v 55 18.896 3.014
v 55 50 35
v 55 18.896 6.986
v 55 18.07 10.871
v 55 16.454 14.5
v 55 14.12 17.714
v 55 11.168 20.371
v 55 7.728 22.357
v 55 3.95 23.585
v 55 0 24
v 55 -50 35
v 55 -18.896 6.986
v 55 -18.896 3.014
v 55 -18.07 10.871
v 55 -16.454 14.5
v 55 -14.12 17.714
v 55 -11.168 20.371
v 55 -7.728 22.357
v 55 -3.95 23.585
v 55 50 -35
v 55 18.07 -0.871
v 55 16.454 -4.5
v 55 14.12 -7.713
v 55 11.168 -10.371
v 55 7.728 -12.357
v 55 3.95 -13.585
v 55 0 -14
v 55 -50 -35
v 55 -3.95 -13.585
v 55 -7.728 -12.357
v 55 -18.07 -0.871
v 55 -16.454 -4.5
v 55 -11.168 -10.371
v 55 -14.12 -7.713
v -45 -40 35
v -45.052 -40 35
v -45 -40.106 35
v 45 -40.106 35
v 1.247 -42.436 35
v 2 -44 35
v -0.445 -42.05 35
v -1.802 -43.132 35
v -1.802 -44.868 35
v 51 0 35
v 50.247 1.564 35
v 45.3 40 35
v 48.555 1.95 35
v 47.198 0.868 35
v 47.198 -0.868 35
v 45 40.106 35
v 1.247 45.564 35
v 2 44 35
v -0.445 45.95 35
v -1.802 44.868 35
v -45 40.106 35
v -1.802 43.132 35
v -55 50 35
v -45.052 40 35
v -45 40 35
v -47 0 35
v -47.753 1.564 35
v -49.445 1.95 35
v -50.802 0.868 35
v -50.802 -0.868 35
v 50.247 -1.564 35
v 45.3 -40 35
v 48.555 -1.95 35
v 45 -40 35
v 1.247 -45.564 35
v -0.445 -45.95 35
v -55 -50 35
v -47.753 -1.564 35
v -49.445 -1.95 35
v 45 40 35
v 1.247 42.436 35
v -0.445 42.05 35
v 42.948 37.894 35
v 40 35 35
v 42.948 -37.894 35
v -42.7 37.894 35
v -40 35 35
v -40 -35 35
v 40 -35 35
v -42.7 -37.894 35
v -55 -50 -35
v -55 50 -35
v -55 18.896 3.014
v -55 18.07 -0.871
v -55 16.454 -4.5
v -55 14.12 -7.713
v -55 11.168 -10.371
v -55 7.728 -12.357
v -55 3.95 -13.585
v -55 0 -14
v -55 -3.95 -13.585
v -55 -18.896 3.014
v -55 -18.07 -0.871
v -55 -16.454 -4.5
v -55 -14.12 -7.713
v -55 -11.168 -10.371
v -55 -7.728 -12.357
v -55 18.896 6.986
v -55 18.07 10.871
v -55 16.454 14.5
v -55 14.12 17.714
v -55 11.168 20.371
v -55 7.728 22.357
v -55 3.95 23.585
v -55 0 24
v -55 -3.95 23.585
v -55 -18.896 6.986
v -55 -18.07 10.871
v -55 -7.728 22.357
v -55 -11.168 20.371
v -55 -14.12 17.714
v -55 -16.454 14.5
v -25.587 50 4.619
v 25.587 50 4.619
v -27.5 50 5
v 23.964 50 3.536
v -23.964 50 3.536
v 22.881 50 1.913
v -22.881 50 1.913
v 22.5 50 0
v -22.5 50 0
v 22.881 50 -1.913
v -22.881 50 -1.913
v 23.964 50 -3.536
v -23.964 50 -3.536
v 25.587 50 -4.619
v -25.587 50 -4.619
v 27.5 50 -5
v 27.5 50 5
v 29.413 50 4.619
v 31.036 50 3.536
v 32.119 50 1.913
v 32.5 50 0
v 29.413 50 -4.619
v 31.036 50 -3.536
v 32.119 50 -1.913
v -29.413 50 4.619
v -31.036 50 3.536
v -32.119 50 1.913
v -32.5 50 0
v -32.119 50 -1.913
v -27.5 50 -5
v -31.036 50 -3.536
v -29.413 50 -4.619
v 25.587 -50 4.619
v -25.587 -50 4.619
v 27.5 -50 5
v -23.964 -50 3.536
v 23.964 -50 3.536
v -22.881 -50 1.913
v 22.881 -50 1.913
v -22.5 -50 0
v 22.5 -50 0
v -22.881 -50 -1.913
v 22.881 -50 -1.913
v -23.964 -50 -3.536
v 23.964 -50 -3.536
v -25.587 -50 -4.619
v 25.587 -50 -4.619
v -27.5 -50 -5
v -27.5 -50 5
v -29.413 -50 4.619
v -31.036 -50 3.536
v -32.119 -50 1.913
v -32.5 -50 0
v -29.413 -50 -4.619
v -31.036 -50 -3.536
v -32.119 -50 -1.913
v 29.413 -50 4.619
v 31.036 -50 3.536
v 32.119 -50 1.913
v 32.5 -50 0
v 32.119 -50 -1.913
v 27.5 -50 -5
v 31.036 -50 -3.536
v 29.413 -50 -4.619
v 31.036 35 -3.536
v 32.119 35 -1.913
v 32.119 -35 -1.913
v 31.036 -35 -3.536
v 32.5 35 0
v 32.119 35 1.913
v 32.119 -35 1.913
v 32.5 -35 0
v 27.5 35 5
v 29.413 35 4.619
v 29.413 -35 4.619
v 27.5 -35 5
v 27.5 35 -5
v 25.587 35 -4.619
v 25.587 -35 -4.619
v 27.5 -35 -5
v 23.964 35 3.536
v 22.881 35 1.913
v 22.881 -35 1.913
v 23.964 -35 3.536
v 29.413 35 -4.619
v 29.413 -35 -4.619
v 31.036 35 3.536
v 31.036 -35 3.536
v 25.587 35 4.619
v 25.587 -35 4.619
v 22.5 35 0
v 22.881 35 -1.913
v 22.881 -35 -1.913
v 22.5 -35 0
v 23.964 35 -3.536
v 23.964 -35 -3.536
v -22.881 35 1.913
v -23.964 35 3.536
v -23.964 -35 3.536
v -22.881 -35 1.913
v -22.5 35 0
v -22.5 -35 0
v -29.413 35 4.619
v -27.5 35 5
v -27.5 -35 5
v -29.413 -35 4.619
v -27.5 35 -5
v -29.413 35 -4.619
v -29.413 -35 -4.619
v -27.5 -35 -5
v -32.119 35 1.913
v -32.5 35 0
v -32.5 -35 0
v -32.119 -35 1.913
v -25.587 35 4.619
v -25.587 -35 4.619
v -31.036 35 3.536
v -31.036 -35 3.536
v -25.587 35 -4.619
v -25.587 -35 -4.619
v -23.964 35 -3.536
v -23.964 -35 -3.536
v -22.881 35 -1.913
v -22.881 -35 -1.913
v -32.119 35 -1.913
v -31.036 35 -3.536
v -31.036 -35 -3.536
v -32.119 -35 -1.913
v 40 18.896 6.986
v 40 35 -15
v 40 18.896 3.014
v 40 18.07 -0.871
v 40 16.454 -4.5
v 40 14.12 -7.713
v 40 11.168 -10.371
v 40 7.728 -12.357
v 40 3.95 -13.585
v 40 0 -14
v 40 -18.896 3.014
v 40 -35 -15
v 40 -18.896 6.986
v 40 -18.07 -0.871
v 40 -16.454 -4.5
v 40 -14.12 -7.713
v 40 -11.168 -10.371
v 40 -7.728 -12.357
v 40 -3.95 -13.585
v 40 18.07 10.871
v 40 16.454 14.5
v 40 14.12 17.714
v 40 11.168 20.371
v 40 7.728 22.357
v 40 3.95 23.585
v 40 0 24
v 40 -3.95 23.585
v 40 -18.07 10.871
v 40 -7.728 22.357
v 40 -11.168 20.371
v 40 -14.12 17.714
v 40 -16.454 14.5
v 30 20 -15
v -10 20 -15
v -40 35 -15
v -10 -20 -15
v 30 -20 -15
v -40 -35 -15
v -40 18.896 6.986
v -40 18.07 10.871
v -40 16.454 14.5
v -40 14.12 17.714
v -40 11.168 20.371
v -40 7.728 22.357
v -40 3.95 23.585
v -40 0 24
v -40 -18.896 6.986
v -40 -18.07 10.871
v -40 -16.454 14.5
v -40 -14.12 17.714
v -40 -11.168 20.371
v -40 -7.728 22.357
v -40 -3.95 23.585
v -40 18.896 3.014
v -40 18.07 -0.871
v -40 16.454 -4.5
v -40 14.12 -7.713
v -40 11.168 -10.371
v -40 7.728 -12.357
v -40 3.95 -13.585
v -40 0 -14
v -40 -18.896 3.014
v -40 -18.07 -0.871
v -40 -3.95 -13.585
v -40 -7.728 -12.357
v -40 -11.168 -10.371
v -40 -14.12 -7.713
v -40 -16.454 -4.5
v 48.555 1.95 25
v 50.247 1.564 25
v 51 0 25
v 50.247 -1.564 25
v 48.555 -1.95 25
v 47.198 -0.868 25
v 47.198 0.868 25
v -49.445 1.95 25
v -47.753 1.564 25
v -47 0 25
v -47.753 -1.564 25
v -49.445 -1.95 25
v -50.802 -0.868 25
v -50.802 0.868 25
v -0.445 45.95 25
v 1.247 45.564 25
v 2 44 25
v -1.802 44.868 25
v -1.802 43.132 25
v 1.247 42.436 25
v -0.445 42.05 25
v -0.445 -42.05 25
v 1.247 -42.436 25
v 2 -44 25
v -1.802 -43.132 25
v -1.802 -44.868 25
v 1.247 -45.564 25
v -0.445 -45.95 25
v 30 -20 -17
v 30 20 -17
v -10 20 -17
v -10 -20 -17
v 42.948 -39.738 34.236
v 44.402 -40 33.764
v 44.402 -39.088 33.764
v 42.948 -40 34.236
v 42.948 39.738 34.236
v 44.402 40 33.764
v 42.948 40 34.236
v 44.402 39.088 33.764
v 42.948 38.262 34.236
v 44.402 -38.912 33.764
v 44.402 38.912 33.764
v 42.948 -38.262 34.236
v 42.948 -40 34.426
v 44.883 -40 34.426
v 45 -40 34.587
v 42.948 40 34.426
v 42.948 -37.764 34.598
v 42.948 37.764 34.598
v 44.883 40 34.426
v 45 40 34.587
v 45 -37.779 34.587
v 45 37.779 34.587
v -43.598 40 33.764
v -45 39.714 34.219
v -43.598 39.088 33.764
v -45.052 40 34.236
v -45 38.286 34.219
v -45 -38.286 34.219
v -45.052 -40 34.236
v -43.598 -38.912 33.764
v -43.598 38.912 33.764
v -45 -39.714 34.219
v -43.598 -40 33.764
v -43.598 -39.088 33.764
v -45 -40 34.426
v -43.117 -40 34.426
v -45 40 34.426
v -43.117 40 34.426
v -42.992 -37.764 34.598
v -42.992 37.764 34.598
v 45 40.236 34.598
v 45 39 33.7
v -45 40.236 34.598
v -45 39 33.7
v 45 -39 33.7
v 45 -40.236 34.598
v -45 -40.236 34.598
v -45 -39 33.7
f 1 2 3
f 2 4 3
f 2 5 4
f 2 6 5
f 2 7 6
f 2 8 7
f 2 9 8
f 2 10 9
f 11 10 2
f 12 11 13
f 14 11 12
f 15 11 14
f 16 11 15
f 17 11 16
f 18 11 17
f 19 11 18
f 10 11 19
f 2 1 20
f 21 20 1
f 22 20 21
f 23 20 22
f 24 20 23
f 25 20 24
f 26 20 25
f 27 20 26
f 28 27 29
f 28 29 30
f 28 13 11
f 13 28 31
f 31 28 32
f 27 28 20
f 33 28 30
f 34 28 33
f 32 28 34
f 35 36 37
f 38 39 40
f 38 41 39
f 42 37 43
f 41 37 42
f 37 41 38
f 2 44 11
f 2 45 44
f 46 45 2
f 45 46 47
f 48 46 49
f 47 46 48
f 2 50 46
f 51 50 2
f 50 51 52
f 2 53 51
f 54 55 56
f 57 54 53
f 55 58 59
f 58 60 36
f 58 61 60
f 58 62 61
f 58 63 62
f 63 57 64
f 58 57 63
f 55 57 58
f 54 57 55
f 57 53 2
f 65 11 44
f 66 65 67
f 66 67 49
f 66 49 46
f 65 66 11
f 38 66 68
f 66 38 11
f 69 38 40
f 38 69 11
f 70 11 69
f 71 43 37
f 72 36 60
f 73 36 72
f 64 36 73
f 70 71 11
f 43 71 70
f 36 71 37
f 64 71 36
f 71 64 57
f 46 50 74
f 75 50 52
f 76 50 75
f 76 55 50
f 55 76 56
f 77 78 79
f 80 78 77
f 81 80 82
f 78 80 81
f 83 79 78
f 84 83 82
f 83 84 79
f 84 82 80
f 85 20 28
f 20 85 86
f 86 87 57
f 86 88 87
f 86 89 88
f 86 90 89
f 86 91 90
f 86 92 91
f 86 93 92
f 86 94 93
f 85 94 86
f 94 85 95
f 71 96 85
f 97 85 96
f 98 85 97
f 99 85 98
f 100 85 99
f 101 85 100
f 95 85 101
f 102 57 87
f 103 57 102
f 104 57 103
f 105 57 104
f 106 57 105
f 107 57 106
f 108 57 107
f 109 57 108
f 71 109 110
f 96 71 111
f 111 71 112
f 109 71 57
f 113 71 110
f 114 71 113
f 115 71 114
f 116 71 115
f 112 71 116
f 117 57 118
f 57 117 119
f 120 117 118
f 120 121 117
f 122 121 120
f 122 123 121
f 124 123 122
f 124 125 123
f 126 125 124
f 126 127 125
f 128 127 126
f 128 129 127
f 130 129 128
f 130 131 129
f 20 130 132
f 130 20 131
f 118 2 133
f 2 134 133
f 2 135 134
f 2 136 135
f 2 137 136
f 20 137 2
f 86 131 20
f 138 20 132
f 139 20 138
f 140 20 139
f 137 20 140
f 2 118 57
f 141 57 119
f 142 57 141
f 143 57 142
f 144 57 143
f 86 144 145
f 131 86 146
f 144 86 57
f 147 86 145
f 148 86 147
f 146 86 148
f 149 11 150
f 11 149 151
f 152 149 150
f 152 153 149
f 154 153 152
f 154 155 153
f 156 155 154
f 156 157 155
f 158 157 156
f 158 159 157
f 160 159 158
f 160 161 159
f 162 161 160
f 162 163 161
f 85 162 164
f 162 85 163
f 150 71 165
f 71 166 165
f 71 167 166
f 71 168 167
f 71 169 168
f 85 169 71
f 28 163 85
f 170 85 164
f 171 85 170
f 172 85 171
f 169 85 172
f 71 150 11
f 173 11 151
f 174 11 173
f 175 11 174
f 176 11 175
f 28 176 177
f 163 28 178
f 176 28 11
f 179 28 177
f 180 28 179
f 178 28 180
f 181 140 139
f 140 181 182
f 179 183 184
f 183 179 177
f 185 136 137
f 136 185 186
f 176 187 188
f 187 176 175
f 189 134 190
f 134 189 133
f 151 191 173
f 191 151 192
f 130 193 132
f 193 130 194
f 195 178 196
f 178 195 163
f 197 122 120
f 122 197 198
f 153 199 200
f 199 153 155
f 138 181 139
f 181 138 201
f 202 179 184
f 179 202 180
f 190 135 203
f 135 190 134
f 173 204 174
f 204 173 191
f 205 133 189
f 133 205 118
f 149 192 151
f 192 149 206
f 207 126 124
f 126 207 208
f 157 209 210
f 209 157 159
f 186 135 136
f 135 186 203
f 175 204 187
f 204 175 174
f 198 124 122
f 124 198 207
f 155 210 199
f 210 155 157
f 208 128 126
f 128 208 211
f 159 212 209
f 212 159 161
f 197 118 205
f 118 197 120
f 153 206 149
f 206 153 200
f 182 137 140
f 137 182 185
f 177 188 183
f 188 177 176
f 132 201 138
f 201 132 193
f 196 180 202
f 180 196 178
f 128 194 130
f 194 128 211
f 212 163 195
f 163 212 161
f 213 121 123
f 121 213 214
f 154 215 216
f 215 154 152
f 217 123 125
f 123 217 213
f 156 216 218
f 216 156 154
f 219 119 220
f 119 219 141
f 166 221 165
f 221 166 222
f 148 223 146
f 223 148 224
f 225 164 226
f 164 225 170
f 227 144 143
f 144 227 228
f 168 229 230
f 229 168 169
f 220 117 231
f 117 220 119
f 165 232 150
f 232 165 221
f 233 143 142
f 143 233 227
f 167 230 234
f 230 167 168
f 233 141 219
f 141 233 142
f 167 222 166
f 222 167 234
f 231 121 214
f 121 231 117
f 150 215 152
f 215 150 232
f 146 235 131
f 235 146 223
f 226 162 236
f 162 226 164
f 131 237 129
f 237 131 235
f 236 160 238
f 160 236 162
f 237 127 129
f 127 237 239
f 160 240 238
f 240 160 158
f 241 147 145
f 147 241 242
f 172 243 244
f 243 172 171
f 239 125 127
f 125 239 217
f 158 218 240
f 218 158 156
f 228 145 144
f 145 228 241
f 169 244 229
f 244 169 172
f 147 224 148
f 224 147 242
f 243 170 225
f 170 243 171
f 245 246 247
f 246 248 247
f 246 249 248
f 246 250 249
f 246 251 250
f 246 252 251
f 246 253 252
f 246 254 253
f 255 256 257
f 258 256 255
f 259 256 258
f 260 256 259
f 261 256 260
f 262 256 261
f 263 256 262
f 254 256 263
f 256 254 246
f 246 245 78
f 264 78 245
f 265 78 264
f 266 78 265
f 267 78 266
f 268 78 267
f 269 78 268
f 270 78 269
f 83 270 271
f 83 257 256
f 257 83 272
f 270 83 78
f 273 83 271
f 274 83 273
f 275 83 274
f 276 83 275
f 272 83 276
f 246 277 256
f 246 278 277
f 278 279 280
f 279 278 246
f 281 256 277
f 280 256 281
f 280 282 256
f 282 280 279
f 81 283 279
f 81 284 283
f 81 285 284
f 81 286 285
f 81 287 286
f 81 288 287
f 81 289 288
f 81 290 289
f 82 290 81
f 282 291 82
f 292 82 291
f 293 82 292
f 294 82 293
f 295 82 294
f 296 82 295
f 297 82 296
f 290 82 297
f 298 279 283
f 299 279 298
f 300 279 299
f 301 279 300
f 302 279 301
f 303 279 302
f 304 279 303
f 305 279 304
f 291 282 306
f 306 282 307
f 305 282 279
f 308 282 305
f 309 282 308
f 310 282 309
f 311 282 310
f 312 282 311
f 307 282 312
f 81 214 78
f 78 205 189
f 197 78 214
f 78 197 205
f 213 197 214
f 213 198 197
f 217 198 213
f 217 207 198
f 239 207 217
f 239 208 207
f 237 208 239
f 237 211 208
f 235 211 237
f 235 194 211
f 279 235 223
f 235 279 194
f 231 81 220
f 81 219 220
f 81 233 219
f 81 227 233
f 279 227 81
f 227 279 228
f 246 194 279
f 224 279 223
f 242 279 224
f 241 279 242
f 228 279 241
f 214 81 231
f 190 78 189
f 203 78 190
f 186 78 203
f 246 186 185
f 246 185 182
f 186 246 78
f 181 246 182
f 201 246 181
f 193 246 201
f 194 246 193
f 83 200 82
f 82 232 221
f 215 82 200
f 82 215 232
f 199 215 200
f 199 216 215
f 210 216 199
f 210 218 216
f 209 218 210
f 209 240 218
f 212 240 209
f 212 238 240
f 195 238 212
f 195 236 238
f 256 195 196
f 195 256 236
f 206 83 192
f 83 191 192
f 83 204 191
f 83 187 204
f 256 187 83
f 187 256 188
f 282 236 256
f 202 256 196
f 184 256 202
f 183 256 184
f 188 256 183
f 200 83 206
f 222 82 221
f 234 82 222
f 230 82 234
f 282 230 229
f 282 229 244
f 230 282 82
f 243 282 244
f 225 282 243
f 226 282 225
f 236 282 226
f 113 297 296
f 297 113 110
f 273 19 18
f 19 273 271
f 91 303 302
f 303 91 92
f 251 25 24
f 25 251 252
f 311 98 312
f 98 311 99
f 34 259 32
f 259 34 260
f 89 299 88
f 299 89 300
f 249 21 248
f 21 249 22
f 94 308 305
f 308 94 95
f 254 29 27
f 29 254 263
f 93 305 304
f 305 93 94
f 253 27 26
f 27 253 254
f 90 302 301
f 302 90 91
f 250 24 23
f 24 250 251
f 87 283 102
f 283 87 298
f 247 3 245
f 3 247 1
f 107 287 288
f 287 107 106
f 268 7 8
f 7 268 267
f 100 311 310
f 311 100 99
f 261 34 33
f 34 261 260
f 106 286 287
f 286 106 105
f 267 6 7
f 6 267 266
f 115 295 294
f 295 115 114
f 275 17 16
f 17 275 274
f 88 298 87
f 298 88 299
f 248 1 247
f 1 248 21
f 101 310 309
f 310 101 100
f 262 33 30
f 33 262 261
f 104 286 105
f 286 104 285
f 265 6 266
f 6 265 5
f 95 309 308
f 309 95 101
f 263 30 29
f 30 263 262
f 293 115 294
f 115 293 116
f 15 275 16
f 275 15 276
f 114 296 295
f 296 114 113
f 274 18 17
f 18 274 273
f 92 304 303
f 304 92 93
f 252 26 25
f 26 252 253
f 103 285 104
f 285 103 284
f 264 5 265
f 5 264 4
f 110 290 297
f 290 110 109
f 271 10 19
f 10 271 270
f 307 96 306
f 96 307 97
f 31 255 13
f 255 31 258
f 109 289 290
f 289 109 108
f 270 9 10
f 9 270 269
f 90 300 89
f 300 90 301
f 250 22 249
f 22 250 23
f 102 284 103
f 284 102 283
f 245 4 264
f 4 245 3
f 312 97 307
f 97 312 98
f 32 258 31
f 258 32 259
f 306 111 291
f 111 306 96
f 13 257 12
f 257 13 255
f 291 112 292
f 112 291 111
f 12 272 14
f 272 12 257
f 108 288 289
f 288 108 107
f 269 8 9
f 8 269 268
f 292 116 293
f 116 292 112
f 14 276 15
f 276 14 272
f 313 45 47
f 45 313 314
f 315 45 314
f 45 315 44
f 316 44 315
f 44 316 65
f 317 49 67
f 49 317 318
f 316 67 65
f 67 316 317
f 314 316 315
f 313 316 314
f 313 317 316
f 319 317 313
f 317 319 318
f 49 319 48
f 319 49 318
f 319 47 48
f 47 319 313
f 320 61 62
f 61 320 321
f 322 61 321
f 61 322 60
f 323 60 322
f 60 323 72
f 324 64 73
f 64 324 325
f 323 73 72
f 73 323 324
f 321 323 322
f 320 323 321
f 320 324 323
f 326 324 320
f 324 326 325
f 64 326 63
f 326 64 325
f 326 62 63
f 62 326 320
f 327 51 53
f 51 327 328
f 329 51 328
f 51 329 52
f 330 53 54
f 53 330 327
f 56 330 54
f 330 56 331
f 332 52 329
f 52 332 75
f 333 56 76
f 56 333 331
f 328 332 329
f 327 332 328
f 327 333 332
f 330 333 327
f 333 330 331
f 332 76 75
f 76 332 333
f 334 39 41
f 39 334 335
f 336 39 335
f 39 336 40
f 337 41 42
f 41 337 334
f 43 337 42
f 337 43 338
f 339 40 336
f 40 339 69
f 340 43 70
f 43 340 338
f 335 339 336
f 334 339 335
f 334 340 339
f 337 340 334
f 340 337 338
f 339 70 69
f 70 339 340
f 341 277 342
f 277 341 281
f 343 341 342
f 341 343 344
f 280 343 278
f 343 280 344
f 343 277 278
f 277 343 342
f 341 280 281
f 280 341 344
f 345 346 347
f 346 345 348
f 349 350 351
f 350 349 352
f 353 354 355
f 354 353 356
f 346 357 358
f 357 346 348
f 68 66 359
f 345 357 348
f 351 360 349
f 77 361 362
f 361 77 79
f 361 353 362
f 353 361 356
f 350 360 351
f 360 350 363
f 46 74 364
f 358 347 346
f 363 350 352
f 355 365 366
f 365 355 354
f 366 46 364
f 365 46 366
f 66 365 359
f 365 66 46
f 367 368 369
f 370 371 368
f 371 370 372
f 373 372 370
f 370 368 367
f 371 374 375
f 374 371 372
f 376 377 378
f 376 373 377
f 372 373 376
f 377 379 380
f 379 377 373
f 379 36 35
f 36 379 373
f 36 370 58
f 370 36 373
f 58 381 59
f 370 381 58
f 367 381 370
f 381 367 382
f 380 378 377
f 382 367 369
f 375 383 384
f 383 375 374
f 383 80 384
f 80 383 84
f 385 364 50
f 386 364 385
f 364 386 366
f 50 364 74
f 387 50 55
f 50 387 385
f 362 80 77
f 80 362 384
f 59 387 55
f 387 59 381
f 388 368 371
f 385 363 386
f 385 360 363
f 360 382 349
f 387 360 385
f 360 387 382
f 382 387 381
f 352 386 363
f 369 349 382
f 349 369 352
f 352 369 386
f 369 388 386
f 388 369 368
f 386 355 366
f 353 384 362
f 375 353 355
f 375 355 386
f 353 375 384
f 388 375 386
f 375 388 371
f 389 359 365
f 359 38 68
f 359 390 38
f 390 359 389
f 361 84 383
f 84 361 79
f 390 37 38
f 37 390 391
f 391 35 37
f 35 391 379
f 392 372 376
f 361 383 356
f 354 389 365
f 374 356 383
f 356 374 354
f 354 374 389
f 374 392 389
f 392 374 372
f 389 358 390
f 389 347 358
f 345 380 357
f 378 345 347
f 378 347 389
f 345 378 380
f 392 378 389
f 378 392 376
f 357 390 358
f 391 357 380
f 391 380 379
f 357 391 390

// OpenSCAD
//Outer Shell
//x = length in x
//y = length in y
//z = length in z
//t_x = thickness x
//t_y = thickness y
//t_z = thickness z
//s_d= screw diameter
//s_l= screw length
//or_rad= o-ring rad

module outer_shell(x, y, z, t_x, t_y, t_z,s_d,s_l,or_rad)
 {
     window_l= x-t_x;
     window_w= y-t_y;
     //difference(){
     difference(){
     difference(){
     difference(){
     difference(){
     difference(){ 
     difference(){
     difference(){
     difference(){
        difference(){
            difference(){
                difference(){
                    difference(){
                        difference(){
                        cube([x,y,z], center=true);
                        rotate([90,0,0])
                        translate([x/4,0,0])   
                        cylinder(r=5,h=(y+1), center=true);}
                    rotate([90,0,0])
                    translate([-x/4,0,0])    
                    cylinder(r=5,h=(y+1), center=true);}
    
                 translate([0,0,t_z])
                 {cube ([window_l,window_w,z], center=true);} }
    
    //electronics windows
    
                    rotate([0,90,0])
                    translate([-5,0,0])    
                    cylinder(r=19,h=(x+1), center=true);}

 //release valve hole
 //rotate([90,0,0])
 //{translate([0,z/5,y/3])
 //cylinder(r=2.5,h=((y/2)+1), center=true);}
 //}
 //screws holes for quartz
 //1
 translate([x/2-6,0,z/2])
 cylinder(r=s_d/2,h=s_l, center=true);
 }
//2
  translate([-(x/2-6),0,z/2])
 cylinder(r=s_d/2,h=s_l, center=true);
}
//3
translate([0,(y/2-6),z/2])
 cylinder(r=s_d/2,h=s_l, center=true);
}
//4
translate([0,-(y/2-6),z/2])
 cylinder(r=s_d/2,h=s_l, center=true);

}
//slot for substrate holder
translate([10,0,0])
cube([40,40,34], center=true);

}
 //o ring holder
    rotate([90,0,0])
    translate([x/2-11,z/2,0])   
    cylinder(r=or_rad,h=(y-20), center=true);
}                  

    rotate([90,0,0])
    translate([-(x/2-11),z/2,0])   
    cylinder(r=or_rad,h=(y-20), center=true);
}   
 
rotate([0,90,0])
    translate([-z/2,y/2-11,0])   
    cylinder(r=or_rad,h=(y-10), center=true);
}
rotate([0,90,0])
    translate([-z/2,-(y/2-11),0])   
    cylinder(r=or_rad,h=(y-10), center=true);

 }
 
 
 }
 outer_shell(110,100,70,30,30,20,4,20,1.3);
 
